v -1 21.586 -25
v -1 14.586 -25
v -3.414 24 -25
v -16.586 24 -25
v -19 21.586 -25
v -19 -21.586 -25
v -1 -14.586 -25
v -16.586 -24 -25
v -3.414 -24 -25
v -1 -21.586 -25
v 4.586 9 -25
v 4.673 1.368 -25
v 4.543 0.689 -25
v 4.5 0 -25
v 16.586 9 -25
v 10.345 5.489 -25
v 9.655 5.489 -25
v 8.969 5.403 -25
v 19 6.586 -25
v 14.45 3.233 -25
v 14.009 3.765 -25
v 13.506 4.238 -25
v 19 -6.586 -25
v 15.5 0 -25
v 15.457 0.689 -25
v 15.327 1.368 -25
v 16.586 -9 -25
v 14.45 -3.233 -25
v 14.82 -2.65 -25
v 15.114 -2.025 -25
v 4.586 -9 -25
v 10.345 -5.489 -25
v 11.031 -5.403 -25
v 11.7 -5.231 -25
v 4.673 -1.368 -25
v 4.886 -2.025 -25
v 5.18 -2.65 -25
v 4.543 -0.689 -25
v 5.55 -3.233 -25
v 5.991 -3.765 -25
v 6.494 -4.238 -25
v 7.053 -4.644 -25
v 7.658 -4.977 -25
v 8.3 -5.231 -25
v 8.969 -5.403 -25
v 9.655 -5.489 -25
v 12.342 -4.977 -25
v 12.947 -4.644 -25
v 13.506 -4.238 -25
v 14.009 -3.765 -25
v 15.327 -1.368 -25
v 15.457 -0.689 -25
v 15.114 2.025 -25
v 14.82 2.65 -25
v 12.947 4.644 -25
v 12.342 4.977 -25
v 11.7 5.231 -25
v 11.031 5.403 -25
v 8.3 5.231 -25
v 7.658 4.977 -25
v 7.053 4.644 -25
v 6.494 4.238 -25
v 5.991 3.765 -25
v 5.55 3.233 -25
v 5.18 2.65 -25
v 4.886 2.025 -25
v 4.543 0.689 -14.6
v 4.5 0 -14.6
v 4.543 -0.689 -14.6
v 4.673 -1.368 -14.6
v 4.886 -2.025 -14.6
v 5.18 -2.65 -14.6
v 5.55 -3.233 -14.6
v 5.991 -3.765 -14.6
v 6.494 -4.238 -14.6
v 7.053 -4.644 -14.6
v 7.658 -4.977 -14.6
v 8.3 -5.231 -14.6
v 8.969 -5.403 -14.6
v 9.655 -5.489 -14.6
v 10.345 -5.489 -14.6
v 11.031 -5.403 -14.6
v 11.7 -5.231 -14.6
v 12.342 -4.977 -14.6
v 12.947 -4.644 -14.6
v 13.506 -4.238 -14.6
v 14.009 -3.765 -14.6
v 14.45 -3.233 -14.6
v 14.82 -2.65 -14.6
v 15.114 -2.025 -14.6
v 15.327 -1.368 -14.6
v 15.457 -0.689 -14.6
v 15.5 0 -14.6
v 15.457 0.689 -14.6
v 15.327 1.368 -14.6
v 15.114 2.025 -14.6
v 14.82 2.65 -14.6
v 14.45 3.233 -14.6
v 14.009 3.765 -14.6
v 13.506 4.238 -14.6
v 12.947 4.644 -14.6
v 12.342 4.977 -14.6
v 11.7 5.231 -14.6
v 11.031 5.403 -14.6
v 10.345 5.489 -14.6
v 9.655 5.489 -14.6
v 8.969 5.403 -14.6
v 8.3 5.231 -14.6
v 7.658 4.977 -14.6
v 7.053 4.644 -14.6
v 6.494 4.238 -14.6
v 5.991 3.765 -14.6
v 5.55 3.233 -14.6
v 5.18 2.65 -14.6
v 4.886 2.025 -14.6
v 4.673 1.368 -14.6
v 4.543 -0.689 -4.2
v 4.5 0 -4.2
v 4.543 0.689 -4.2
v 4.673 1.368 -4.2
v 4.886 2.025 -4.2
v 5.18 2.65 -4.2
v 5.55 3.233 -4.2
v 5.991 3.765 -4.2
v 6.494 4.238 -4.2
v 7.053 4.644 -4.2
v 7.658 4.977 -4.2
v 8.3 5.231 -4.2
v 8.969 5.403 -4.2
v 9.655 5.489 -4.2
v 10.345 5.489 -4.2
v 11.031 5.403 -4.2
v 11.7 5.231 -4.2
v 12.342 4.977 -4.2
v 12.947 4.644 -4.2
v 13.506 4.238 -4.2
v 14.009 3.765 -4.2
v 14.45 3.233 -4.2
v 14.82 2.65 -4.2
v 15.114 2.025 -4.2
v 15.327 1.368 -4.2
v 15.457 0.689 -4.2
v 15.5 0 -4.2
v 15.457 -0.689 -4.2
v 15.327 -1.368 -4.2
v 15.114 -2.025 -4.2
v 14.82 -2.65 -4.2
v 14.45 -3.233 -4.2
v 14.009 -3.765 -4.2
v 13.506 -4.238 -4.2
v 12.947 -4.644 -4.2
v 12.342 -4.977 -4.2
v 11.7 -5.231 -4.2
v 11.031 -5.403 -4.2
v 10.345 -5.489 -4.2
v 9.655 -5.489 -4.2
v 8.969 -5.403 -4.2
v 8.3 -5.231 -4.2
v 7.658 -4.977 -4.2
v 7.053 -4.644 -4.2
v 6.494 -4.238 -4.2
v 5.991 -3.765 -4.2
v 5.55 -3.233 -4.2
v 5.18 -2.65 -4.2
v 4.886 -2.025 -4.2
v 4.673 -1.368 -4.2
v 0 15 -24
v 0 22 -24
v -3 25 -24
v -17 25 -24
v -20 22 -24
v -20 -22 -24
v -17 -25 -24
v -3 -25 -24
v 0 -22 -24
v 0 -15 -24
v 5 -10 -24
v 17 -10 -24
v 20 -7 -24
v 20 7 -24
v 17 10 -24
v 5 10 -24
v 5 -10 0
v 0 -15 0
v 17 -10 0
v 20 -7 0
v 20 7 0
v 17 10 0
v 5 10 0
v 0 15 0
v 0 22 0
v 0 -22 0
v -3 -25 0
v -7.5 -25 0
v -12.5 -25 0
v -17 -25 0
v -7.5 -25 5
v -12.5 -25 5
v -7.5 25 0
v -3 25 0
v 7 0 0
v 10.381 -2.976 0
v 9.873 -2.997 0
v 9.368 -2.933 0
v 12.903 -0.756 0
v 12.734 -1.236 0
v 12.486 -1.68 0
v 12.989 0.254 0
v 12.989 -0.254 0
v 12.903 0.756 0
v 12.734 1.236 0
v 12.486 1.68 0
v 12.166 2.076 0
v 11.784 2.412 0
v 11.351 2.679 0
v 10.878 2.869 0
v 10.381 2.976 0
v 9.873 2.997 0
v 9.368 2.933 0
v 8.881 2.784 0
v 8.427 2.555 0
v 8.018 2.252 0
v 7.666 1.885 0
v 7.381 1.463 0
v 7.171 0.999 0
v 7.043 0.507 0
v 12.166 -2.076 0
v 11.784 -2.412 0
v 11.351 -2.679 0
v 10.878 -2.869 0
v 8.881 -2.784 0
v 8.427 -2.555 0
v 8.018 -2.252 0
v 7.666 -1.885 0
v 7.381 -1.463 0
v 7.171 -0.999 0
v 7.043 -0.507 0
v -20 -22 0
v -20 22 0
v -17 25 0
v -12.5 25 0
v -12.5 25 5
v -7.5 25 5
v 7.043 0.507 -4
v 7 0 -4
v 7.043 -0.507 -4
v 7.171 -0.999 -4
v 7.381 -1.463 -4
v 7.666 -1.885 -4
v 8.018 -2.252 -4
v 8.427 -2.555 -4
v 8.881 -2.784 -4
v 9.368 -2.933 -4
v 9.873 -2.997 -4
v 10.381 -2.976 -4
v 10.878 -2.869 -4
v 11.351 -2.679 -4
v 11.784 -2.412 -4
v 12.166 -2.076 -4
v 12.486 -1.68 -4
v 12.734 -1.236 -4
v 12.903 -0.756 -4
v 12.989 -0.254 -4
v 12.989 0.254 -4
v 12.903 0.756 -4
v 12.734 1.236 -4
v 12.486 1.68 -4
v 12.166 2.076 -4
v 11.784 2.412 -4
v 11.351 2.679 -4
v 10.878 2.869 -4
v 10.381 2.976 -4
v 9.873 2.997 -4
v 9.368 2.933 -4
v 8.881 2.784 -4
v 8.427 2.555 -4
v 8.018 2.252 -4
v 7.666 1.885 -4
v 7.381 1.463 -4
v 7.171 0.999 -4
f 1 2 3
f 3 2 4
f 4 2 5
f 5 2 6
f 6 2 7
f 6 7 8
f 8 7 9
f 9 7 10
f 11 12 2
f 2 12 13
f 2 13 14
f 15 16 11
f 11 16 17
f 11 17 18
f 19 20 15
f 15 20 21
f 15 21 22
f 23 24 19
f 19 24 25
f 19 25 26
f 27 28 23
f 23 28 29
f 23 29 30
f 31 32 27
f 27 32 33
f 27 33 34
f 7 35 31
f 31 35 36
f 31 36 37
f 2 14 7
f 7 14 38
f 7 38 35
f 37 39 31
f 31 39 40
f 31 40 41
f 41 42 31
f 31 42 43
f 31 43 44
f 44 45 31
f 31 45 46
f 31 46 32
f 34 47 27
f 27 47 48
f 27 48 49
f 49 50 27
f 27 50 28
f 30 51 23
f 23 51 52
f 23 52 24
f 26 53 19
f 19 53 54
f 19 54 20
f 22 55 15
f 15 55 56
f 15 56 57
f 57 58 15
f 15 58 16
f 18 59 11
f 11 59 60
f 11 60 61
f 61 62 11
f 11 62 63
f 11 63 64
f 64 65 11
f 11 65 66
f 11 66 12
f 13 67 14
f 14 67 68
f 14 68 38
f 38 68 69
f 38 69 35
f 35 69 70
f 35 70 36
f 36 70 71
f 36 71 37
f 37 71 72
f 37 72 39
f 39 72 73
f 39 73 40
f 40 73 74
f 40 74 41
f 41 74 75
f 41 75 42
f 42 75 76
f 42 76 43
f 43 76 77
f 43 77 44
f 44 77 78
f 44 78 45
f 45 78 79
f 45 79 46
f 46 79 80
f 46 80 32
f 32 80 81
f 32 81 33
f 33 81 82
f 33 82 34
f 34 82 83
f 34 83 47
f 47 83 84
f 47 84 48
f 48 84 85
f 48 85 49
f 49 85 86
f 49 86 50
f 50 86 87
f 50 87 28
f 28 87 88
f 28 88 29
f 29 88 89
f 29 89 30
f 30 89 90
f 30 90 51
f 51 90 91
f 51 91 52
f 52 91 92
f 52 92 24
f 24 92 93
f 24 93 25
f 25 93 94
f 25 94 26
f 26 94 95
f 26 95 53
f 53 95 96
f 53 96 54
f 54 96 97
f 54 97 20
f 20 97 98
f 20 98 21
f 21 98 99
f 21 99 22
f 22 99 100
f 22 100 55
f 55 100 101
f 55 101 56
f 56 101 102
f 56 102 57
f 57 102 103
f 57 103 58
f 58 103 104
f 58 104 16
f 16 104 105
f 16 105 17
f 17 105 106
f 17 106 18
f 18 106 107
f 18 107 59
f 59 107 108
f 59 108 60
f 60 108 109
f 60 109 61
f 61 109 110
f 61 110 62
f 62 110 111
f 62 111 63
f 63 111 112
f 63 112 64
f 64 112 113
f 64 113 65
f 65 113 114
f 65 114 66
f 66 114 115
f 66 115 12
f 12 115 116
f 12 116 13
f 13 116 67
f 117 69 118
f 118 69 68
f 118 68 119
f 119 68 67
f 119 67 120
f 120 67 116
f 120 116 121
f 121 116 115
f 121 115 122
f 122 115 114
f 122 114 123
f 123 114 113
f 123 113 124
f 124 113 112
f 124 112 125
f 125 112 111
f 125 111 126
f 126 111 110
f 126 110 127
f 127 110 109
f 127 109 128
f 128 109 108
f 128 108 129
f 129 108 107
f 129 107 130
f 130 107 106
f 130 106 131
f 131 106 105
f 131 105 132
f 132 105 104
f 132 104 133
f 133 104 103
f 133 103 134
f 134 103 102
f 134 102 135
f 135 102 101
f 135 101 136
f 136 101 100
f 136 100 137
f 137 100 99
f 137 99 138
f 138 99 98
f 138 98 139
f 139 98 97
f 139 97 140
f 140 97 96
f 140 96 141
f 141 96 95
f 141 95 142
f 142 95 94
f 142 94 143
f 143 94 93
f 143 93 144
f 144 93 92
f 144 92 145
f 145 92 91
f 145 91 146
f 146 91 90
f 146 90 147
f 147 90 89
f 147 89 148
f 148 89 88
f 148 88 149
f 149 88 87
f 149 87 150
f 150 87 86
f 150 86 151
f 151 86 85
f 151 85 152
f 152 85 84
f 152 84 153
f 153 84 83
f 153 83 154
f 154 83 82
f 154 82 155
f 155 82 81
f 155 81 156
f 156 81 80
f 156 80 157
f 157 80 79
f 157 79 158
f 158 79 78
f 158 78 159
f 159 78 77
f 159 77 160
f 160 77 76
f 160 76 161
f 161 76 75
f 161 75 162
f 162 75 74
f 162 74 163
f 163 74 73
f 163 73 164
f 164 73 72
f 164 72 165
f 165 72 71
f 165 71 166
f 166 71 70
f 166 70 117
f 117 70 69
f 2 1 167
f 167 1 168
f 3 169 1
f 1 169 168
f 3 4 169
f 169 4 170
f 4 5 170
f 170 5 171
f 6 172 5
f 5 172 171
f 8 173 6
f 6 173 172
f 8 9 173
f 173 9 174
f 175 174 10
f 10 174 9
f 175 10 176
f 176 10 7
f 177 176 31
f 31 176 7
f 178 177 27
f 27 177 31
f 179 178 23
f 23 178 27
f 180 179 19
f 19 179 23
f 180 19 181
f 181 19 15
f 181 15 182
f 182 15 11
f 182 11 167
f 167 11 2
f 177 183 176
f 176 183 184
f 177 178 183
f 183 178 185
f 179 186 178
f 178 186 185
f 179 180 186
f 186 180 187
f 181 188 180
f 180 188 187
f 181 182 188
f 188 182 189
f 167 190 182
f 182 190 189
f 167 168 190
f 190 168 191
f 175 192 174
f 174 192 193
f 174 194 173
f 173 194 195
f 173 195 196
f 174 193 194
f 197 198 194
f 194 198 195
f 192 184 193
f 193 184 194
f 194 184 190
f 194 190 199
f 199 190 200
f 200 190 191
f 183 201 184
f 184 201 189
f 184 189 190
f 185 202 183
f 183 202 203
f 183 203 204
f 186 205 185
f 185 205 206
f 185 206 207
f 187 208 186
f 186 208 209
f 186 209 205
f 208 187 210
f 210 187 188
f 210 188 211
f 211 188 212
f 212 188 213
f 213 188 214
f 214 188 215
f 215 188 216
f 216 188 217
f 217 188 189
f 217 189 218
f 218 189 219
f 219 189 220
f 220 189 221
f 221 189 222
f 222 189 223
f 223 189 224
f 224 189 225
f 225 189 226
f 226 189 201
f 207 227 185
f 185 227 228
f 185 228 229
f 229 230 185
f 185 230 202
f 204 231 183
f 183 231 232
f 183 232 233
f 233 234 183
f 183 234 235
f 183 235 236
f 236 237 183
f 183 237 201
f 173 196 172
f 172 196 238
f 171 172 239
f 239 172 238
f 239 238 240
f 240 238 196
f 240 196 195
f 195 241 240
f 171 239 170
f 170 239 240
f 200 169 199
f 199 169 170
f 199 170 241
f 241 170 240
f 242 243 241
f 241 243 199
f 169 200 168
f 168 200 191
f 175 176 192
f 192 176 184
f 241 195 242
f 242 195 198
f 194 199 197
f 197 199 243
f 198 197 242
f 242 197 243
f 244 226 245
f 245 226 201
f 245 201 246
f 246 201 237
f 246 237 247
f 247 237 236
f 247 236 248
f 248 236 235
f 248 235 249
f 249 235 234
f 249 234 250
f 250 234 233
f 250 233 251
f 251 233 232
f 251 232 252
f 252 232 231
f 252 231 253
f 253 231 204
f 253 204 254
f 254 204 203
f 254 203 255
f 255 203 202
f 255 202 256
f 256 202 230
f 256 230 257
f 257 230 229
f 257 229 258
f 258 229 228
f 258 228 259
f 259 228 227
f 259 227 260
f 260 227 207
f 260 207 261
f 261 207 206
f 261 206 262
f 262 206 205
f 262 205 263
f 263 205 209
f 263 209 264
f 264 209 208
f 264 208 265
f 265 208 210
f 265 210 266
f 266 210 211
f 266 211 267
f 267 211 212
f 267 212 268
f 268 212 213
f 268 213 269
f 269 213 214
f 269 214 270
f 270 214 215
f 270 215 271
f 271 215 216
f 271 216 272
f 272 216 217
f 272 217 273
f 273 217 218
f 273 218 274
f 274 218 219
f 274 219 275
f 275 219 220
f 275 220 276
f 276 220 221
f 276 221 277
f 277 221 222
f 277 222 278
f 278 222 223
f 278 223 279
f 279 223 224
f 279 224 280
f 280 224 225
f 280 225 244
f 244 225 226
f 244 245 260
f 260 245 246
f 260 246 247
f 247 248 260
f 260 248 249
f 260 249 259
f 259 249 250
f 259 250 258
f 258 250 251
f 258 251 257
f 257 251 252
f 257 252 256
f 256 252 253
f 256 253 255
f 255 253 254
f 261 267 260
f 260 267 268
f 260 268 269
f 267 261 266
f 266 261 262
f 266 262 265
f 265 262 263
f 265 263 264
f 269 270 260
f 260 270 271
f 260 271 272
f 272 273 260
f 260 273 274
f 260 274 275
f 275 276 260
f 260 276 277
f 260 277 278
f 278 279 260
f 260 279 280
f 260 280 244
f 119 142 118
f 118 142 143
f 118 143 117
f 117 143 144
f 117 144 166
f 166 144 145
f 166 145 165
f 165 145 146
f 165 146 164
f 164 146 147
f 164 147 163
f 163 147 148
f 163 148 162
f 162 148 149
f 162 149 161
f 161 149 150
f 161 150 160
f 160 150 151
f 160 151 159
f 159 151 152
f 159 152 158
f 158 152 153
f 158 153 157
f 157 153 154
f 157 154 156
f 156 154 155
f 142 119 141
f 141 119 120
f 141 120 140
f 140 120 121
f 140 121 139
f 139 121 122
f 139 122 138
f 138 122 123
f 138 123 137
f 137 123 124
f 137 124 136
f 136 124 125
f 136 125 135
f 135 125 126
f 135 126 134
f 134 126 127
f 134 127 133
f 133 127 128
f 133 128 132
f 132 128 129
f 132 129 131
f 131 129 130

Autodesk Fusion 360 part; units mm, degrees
sketch "Szkic1" plane through (0, 0, 0) normal (0, 0, 1) x (1, 0, 0)
  line L0 (-20, 25) -> (-20, -25)
  line L1 (-20, -25) -> (0, -25)
  line L2 (0, -25) -> (0, 25)
  line L3 (0, 25) -> (-20, 25)
  line L4 (0, 10) -> (0, -10)
  line L5 (0, -10) -> (20, -10)
  line L6 (20, -10) -> (20, 10)
  line L7 (20, 10) -> (0, 10)
  circle A0 centre (10, 0) radius 3
  circle A1 centre (10, 0) radius 5.5
  line L8 (-12.5, 25) -> (-7.5, 25)
  line L9 (-7.5, 25) -> (-7.5, -25)
  line L10 (-7.5, -25) -> (-12.5, -25)
  line L11 (-12.5, -25) -> (-12.5, 25)
  dimension "d1" = 6
  dimension "d2" = 11
extrude "Wyciągnięcie proste1" add sketch "Szkic1" against normal blind 25 contours L0 L1 L3 L11 | L1 L3 L8 L9 L10 L11 | L1 L2 L3 L4 L9 | L2 L4 L5 L6 L7
extrude "Wyciągnięcie proste2" add sketch "Szkic1" against normal blind 4.2 contours A0 | A1
extrude "Wyciągnięcie proste3" cut sketch "Szkic1" against normal blind 4 contours A0
extrude "Wyciągnięcie proste4" add sketch "Szkic1" along normal blind 5 contours L1 L3 L8 L9 L10 L11
chamfer "Fazowanie1" distance 5 angle 45 1 edges at (0, -10, -12.5)
chamfer "Fazowanie2" distance 5 angle 45 1 edges at (0, 10, -12.5)
chamfer "Fazowanie3" distance 3 angle 45 6 edges at (20, 10, -12.5) (20, -10, -12.5) (0, 25, -12.5) (-20, 25, -12.5) (-20, -25, -12.5) (0, -25, -12.5)
chamfer "Fazowanie4" distance 1 angle 45 1 faces at (-11.8333, 0, -25)
delete_face "Usuń powierzchnię1" 1 faces at (16.159, -0.3074, -24.6667)
